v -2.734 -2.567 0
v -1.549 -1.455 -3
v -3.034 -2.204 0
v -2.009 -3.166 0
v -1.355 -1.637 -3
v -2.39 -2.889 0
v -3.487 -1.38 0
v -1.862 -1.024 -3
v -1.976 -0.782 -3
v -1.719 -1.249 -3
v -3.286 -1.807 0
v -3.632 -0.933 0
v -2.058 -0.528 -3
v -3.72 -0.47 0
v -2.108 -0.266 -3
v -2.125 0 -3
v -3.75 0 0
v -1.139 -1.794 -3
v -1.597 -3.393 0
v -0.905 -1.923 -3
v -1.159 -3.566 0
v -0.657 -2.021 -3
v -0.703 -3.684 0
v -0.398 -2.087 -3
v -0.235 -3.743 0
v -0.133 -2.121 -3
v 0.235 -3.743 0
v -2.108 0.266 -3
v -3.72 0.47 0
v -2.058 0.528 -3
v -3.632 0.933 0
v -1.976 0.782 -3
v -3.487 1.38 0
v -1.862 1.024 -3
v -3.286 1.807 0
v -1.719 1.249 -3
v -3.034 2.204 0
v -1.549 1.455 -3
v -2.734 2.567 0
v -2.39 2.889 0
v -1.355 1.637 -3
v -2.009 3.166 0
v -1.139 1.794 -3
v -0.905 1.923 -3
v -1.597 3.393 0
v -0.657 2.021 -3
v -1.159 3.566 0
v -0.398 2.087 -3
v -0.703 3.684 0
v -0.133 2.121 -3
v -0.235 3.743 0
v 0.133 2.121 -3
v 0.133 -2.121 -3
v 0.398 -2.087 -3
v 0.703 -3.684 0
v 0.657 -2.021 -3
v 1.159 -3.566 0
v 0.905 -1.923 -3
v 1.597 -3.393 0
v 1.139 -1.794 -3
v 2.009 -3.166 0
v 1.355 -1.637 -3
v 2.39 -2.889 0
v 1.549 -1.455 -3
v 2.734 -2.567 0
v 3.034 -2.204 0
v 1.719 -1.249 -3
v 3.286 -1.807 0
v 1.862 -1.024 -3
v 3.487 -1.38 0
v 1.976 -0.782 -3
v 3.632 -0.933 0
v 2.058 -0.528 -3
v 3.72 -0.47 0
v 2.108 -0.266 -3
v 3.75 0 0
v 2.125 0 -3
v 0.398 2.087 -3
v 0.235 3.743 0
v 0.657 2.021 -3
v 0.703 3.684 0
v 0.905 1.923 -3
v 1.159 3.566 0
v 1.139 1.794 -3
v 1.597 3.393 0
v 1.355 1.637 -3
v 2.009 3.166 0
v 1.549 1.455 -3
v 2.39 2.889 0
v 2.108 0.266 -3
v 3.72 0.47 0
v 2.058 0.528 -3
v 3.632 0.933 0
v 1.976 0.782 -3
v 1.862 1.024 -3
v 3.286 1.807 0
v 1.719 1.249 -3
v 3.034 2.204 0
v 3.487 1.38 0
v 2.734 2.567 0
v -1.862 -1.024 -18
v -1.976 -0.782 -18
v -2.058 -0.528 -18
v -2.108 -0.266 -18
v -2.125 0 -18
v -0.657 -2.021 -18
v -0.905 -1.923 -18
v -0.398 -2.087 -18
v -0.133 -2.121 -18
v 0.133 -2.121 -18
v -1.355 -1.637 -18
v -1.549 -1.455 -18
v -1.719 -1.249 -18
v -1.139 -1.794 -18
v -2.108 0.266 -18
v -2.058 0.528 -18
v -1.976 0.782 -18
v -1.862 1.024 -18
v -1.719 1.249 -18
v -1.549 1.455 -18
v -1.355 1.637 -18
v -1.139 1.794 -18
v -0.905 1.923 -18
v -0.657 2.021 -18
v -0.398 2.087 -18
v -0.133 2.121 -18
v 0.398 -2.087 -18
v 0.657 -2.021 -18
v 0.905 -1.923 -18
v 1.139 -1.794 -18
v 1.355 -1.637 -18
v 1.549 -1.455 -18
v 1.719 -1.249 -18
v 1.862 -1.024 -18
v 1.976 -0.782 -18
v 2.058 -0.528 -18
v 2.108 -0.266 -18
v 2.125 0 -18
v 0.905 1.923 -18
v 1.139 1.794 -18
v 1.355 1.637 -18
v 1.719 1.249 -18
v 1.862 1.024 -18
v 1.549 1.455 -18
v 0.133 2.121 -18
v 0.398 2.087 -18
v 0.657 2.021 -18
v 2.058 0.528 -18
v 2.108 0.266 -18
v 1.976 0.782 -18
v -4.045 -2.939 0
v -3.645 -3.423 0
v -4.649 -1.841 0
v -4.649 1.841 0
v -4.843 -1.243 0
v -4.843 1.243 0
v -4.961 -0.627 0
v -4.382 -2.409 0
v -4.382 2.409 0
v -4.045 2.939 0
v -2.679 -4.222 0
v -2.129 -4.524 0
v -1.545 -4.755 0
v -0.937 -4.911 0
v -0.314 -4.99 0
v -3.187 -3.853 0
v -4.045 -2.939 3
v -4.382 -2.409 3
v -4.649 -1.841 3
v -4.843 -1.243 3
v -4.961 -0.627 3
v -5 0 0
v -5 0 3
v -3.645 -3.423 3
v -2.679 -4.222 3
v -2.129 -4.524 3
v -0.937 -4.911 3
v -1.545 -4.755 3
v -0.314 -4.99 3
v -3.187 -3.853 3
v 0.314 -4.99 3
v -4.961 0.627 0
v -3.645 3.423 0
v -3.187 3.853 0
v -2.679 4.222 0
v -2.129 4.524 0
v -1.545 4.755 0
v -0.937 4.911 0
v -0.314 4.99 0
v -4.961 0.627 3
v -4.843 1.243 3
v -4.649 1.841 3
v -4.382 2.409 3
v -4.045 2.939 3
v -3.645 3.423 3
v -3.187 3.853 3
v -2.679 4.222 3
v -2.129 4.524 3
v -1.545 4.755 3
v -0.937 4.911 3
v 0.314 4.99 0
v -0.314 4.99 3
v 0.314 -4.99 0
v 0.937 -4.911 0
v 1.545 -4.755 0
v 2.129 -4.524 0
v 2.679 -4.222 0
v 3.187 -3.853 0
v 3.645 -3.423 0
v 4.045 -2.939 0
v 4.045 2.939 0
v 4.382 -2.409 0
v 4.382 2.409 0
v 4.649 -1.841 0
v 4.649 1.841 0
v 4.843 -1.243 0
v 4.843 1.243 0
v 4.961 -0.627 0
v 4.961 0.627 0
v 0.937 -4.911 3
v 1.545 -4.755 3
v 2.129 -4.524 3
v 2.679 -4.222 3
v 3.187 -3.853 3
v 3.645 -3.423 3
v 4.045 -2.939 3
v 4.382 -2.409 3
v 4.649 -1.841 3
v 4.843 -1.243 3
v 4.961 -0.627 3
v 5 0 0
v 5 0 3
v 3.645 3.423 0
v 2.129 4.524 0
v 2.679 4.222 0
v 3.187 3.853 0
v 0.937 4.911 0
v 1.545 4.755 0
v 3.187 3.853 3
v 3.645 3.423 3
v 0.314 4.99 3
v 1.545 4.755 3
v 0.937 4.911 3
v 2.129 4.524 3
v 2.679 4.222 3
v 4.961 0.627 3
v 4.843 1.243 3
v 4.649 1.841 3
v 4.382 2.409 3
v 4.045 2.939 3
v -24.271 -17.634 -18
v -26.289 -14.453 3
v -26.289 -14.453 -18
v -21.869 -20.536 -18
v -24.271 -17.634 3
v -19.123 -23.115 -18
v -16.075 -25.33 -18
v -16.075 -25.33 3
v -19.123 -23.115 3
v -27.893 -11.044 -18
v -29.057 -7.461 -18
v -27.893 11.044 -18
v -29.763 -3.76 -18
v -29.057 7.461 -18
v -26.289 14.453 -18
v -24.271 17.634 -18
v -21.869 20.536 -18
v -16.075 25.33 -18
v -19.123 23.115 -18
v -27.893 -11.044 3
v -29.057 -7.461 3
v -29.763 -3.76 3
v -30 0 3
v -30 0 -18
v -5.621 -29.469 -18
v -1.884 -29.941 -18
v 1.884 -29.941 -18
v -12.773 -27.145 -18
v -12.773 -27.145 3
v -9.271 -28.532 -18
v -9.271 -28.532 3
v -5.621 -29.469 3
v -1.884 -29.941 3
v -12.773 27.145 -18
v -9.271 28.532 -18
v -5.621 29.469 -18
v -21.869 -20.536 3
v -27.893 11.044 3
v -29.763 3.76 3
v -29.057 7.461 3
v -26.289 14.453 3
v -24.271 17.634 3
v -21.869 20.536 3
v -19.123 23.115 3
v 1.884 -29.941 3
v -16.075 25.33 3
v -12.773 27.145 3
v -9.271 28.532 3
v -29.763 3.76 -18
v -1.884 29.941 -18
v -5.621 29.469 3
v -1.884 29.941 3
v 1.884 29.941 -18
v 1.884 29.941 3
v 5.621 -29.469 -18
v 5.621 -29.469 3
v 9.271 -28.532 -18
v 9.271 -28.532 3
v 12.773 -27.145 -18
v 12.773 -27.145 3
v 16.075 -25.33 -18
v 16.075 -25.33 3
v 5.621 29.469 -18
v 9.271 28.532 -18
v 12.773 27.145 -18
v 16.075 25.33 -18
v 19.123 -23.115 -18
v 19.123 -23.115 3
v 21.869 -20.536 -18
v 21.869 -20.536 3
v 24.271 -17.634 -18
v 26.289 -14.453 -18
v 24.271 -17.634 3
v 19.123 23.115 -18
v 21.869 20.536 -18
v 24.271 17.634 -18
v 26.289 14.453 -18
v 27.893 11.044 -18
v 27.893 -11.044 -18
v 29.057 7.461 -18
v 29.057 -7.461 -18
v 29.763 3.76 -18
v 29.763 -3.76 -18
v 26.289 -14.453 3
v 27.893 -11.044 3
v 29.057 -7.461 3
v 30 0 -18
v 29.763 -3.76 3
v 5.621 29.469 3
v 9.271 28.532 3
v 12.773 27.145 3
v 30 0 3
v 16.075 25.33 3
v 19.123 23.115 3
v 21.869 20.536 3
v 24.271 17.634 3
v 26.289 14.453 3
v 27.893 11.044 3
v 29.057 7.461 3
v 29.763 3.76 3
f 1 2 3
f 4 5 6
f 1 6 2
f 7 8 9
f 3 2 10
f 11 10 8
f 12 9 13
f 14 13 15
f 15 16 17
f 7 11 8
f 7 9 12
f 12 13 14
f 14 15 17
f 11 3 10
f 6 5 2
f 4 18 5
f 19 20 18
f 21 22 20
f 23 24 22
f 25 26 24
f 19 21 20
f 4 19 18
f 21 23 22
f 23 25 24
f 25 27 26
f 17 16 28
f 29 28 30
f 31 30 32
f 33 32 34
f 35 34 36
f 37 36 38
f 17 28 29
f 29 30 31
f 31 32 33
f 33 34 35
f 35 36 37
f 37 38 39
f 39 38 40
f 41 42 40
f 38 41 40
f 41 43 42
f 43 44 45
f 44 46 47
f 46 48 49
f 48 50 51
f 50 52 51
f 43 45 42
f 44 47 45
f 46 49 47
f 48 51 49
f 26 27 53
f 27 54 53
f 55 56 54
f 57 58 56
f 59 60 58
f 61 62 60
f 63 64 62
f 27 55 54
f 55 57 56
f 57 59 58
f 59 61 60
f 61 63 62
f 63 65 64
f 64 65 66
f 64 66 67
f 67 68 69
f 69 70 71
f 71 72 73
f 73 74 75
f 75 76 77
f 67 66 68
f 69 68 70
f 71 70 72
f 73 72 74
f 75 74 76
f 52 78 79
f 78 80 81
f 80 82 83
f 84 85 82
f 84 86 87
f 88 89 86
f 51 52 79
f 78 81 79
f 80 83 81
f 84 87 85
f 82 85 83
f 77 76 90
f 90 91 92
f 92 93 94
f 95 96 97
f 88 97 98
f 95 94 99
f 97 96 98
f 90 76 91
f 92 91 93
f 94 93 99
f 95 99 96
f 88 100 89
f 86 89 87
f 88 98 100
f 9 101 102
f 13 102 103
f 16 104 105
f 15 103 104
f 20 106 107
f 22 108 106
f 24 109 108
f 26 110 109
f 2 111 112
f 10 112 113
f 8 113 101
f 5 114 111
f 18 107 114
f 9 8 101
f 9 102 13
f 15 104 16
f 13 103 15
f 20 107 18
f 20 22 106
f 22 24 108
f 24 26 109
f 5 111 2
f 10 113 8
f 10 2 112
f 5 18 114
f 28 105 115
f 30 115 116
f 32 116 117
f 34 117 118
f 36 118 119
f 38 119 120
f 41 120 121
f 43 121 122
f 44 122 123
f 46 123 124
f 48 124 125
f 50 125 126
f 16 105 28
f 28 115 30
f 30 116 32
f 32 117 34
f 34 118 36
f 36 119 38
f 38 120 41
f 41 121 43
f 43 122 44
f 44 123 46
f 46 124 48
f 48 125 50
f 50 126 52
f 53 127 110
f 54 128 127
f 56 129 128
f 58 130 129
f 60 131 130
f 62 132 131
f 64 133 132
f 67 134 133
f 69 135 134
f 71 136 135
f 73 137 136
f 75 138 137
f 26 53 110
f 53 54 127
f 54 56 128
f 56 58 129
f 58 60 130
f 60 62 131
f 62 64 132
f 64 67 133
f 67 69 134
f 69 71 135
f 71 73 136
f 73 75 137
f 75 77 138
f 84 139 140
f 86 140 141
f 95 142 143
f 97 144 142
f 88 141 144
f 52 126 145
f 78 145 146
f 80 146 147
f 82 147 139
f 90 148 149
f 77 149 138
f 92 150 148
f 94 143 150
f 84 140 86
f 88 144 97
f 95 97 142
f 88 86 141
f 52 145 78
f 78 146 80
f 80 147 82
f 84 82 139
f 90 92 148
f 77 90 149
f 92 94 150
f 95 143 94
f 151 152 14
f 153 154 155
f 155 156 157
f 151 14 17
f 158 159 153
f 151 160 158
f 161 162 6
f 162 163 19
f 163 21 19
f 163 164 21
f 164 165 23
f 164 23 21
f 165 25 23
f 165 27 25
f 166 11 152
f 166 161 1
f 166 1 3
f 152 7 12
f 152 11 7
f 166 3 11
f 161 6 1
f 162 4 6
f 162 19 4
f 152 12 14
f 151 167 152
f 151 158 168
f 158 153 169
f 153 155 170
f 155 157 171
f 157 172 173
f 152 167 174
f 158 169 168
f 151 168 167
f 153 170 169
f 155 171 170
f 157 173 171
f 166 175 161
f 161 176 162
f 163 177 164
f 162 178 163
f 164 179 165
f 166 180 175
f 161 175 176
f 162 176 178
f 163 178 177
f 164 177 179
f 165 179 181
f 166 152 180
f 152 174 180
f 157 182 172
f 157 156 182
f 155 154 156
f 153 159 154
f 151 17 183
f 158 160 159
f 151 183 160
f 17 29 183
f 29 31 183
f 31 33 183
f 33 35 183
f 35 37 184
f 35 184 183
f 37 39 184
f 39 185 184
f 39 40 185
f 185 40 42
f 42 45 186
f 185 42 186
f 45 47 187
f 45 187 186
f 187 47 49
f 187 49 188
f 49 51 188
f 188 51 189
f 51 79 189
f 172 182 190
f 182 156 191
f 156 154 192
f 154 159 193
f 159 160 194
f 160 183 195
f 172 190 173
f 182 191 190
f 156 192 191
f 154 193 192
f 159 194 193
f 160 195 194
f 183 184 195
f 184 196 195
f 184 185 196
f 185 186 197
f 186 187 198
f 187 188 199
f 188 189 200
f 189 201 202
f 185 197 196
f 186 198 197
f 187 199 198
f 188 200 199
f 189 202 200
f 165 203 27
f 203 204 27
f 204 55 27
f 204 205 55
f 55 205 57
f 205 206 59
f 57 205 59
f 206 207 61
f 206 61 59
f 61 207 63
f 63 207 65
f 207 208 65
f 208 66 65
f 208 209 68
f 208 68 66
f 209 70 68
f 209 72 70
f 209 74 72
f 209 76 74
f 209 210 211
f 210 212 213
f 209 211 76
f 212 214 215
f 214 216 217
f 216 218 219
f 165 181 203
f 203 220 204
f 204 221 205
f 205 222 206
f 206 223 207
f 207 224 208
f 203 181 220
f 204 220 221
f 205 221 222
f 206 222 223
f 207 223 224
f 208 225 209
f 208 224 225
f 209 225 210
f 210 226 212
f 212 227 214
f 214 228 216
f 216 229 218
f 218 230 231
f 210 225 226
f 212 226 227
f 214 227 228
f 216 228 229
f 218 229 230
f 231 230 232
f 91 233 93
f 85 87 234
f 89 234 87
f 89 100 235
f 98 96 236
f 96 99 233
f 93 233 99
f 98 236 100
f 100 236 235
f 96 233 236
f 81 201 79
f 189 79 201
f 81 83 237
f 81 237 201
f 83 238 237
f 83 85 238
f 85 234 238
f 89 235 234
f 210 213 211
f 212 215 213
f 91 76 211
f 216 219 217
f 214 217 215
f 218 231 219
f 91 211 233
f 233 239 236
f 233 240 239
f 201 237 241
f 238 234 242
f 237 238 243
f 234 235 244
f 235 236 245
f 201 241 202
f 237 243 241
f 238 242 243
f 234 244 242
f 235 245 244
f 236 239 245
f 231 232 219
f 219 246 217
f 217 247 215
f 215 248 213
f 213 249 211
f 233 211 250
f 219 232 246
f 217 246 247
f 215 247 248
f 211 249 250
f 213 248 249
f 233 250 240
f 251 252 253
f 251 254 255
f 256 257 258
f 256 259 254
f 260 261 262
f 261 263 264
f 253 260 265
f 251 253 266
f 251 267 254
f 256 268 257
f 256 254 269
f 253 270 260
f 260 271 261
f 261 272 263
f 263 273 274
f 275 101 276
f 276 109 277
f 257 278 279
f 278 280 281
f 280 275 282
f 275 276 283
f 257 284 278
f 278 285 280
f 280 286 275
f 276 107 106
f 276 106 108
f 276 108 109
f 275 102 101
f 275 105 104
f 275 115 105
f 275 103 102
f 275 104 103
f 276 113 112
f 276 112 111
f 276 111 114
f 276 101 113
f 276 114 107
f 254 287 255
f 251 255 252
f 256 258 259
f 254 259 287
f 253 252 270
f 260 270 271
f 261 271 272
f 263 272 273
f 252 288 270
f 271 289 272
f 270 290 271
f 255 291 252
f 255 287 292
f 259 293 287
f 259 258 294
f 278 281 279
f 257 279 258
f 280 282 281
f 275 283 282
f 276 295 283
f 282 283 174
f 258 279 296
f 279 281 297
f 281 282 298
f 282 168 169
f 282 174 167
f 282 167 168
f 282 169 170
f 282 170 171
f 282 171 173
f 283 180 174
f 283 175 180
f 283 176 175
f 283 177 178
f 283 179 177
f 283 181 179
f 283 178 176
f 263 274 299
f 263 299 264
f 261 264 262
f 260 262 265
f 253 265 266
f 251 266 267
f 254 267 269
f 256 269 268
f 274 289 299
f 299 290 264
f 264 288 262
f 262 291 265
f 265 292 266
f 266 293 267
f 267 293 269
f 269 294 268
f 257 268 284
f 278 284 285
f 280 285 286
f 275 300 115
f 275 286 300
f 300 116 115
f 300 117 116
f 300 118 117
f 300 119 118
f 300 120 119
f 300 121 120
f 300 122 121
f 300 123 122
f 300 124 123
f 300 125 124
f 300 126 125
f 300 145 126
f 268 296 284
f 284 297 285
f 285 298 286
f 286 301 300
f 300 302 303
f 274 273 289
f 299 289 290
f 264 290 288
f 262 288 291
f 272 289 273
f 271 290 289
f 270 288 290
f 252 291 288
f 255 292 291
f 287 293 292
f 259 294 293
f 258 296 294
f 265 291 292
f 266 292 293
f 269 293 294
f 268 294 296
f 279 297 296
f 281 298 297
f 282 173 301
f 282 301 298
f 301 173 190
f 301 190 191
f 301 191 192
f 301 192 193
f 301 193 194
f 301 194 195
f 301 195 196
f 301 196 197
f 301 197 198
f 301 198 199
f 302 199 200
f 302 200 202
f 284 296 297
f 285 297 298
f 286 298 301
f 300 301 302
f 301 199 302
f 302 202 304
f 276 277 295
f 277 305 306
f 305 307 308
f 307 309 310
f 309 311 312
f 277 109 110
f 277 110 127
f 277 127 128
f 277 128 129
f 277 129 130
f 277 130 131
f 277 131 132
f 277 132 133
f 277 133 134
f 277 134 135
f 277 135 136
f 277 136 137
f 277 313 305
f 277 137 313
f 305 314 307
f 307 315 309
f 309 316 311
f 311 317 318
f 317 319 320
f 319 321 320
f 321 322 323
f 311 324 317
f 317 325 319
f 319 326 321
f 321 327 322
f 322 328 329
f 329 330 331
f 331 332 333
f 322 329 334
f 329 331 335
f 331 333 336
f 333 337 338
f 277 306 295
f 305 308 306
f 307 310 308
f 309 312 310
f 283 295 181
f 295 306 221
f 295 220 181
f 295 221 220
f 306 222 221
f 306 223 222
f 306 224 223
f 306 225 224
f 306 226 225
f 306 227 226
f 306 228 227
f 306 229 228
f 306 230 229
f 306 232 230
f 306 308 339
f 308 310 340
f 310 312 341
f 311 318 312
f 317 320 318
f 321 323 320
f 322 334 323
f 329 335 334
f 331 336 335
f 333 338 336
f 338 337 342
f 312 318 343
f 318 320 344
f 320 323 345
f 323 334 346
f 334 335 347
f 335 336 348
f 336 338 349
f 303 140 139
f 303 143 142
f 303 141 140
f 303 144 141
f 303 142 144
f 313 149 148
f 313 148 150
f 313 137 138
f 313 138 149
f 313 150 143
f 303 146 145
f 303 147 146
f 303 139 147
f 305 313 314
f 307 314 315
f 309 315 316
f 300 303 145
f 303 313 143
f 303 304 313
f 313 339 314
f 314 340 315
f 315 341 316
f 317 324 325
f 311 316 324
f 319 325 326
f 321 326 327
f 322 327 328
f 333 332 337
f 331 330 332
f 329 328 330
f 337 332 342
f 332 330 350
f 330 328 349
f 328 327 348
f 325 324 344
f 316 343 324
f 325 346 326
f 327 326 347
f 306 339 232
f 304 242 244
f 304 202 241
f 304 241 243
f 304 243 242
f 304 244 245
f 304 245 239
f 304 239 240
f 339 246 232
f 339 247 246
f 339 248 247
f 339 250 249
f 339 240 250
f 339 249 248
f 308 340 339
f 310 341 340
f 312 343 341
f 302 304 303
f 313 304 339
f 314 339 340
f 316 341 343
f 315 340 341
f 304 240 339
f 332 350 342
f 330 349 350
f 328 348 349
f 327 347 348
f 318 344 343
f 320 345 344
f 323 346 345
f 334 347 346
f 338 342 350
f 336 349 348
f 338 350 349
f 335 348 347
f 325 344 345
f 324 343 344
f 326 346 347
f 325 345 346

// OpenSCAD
$fn = 50;

difference() {
	union() {
		translate(v = [0, 0, -18.0]) {
			cylinder(h = 21, r = 30.0);
		}
	}
	union() {
		translate(v = [0, 0, 0]) {
			rotate(a = [0, 0, 0]) {
				difference() {
					union() {
						translate(v = [0, 0, -21.0]) {
							cylinder(h = 21, r = 2.0);
						}
						translate(v = [0, 0, -3]) {
							cylinder(h = 3, r1 = 2.125, r2 = 3.75);
						}
						translate(v = [0, 0, -21.0]) {
							cylinder(h = 21, r = 2.125);
						}
						translate(v = [0, 0, -21.0]) {
							cylinder(h = 21, r = 2.0);
						}
					}
					union();
				}
			}
		}
		#cylinder(h = 3, r = 5.0);
	}
}
